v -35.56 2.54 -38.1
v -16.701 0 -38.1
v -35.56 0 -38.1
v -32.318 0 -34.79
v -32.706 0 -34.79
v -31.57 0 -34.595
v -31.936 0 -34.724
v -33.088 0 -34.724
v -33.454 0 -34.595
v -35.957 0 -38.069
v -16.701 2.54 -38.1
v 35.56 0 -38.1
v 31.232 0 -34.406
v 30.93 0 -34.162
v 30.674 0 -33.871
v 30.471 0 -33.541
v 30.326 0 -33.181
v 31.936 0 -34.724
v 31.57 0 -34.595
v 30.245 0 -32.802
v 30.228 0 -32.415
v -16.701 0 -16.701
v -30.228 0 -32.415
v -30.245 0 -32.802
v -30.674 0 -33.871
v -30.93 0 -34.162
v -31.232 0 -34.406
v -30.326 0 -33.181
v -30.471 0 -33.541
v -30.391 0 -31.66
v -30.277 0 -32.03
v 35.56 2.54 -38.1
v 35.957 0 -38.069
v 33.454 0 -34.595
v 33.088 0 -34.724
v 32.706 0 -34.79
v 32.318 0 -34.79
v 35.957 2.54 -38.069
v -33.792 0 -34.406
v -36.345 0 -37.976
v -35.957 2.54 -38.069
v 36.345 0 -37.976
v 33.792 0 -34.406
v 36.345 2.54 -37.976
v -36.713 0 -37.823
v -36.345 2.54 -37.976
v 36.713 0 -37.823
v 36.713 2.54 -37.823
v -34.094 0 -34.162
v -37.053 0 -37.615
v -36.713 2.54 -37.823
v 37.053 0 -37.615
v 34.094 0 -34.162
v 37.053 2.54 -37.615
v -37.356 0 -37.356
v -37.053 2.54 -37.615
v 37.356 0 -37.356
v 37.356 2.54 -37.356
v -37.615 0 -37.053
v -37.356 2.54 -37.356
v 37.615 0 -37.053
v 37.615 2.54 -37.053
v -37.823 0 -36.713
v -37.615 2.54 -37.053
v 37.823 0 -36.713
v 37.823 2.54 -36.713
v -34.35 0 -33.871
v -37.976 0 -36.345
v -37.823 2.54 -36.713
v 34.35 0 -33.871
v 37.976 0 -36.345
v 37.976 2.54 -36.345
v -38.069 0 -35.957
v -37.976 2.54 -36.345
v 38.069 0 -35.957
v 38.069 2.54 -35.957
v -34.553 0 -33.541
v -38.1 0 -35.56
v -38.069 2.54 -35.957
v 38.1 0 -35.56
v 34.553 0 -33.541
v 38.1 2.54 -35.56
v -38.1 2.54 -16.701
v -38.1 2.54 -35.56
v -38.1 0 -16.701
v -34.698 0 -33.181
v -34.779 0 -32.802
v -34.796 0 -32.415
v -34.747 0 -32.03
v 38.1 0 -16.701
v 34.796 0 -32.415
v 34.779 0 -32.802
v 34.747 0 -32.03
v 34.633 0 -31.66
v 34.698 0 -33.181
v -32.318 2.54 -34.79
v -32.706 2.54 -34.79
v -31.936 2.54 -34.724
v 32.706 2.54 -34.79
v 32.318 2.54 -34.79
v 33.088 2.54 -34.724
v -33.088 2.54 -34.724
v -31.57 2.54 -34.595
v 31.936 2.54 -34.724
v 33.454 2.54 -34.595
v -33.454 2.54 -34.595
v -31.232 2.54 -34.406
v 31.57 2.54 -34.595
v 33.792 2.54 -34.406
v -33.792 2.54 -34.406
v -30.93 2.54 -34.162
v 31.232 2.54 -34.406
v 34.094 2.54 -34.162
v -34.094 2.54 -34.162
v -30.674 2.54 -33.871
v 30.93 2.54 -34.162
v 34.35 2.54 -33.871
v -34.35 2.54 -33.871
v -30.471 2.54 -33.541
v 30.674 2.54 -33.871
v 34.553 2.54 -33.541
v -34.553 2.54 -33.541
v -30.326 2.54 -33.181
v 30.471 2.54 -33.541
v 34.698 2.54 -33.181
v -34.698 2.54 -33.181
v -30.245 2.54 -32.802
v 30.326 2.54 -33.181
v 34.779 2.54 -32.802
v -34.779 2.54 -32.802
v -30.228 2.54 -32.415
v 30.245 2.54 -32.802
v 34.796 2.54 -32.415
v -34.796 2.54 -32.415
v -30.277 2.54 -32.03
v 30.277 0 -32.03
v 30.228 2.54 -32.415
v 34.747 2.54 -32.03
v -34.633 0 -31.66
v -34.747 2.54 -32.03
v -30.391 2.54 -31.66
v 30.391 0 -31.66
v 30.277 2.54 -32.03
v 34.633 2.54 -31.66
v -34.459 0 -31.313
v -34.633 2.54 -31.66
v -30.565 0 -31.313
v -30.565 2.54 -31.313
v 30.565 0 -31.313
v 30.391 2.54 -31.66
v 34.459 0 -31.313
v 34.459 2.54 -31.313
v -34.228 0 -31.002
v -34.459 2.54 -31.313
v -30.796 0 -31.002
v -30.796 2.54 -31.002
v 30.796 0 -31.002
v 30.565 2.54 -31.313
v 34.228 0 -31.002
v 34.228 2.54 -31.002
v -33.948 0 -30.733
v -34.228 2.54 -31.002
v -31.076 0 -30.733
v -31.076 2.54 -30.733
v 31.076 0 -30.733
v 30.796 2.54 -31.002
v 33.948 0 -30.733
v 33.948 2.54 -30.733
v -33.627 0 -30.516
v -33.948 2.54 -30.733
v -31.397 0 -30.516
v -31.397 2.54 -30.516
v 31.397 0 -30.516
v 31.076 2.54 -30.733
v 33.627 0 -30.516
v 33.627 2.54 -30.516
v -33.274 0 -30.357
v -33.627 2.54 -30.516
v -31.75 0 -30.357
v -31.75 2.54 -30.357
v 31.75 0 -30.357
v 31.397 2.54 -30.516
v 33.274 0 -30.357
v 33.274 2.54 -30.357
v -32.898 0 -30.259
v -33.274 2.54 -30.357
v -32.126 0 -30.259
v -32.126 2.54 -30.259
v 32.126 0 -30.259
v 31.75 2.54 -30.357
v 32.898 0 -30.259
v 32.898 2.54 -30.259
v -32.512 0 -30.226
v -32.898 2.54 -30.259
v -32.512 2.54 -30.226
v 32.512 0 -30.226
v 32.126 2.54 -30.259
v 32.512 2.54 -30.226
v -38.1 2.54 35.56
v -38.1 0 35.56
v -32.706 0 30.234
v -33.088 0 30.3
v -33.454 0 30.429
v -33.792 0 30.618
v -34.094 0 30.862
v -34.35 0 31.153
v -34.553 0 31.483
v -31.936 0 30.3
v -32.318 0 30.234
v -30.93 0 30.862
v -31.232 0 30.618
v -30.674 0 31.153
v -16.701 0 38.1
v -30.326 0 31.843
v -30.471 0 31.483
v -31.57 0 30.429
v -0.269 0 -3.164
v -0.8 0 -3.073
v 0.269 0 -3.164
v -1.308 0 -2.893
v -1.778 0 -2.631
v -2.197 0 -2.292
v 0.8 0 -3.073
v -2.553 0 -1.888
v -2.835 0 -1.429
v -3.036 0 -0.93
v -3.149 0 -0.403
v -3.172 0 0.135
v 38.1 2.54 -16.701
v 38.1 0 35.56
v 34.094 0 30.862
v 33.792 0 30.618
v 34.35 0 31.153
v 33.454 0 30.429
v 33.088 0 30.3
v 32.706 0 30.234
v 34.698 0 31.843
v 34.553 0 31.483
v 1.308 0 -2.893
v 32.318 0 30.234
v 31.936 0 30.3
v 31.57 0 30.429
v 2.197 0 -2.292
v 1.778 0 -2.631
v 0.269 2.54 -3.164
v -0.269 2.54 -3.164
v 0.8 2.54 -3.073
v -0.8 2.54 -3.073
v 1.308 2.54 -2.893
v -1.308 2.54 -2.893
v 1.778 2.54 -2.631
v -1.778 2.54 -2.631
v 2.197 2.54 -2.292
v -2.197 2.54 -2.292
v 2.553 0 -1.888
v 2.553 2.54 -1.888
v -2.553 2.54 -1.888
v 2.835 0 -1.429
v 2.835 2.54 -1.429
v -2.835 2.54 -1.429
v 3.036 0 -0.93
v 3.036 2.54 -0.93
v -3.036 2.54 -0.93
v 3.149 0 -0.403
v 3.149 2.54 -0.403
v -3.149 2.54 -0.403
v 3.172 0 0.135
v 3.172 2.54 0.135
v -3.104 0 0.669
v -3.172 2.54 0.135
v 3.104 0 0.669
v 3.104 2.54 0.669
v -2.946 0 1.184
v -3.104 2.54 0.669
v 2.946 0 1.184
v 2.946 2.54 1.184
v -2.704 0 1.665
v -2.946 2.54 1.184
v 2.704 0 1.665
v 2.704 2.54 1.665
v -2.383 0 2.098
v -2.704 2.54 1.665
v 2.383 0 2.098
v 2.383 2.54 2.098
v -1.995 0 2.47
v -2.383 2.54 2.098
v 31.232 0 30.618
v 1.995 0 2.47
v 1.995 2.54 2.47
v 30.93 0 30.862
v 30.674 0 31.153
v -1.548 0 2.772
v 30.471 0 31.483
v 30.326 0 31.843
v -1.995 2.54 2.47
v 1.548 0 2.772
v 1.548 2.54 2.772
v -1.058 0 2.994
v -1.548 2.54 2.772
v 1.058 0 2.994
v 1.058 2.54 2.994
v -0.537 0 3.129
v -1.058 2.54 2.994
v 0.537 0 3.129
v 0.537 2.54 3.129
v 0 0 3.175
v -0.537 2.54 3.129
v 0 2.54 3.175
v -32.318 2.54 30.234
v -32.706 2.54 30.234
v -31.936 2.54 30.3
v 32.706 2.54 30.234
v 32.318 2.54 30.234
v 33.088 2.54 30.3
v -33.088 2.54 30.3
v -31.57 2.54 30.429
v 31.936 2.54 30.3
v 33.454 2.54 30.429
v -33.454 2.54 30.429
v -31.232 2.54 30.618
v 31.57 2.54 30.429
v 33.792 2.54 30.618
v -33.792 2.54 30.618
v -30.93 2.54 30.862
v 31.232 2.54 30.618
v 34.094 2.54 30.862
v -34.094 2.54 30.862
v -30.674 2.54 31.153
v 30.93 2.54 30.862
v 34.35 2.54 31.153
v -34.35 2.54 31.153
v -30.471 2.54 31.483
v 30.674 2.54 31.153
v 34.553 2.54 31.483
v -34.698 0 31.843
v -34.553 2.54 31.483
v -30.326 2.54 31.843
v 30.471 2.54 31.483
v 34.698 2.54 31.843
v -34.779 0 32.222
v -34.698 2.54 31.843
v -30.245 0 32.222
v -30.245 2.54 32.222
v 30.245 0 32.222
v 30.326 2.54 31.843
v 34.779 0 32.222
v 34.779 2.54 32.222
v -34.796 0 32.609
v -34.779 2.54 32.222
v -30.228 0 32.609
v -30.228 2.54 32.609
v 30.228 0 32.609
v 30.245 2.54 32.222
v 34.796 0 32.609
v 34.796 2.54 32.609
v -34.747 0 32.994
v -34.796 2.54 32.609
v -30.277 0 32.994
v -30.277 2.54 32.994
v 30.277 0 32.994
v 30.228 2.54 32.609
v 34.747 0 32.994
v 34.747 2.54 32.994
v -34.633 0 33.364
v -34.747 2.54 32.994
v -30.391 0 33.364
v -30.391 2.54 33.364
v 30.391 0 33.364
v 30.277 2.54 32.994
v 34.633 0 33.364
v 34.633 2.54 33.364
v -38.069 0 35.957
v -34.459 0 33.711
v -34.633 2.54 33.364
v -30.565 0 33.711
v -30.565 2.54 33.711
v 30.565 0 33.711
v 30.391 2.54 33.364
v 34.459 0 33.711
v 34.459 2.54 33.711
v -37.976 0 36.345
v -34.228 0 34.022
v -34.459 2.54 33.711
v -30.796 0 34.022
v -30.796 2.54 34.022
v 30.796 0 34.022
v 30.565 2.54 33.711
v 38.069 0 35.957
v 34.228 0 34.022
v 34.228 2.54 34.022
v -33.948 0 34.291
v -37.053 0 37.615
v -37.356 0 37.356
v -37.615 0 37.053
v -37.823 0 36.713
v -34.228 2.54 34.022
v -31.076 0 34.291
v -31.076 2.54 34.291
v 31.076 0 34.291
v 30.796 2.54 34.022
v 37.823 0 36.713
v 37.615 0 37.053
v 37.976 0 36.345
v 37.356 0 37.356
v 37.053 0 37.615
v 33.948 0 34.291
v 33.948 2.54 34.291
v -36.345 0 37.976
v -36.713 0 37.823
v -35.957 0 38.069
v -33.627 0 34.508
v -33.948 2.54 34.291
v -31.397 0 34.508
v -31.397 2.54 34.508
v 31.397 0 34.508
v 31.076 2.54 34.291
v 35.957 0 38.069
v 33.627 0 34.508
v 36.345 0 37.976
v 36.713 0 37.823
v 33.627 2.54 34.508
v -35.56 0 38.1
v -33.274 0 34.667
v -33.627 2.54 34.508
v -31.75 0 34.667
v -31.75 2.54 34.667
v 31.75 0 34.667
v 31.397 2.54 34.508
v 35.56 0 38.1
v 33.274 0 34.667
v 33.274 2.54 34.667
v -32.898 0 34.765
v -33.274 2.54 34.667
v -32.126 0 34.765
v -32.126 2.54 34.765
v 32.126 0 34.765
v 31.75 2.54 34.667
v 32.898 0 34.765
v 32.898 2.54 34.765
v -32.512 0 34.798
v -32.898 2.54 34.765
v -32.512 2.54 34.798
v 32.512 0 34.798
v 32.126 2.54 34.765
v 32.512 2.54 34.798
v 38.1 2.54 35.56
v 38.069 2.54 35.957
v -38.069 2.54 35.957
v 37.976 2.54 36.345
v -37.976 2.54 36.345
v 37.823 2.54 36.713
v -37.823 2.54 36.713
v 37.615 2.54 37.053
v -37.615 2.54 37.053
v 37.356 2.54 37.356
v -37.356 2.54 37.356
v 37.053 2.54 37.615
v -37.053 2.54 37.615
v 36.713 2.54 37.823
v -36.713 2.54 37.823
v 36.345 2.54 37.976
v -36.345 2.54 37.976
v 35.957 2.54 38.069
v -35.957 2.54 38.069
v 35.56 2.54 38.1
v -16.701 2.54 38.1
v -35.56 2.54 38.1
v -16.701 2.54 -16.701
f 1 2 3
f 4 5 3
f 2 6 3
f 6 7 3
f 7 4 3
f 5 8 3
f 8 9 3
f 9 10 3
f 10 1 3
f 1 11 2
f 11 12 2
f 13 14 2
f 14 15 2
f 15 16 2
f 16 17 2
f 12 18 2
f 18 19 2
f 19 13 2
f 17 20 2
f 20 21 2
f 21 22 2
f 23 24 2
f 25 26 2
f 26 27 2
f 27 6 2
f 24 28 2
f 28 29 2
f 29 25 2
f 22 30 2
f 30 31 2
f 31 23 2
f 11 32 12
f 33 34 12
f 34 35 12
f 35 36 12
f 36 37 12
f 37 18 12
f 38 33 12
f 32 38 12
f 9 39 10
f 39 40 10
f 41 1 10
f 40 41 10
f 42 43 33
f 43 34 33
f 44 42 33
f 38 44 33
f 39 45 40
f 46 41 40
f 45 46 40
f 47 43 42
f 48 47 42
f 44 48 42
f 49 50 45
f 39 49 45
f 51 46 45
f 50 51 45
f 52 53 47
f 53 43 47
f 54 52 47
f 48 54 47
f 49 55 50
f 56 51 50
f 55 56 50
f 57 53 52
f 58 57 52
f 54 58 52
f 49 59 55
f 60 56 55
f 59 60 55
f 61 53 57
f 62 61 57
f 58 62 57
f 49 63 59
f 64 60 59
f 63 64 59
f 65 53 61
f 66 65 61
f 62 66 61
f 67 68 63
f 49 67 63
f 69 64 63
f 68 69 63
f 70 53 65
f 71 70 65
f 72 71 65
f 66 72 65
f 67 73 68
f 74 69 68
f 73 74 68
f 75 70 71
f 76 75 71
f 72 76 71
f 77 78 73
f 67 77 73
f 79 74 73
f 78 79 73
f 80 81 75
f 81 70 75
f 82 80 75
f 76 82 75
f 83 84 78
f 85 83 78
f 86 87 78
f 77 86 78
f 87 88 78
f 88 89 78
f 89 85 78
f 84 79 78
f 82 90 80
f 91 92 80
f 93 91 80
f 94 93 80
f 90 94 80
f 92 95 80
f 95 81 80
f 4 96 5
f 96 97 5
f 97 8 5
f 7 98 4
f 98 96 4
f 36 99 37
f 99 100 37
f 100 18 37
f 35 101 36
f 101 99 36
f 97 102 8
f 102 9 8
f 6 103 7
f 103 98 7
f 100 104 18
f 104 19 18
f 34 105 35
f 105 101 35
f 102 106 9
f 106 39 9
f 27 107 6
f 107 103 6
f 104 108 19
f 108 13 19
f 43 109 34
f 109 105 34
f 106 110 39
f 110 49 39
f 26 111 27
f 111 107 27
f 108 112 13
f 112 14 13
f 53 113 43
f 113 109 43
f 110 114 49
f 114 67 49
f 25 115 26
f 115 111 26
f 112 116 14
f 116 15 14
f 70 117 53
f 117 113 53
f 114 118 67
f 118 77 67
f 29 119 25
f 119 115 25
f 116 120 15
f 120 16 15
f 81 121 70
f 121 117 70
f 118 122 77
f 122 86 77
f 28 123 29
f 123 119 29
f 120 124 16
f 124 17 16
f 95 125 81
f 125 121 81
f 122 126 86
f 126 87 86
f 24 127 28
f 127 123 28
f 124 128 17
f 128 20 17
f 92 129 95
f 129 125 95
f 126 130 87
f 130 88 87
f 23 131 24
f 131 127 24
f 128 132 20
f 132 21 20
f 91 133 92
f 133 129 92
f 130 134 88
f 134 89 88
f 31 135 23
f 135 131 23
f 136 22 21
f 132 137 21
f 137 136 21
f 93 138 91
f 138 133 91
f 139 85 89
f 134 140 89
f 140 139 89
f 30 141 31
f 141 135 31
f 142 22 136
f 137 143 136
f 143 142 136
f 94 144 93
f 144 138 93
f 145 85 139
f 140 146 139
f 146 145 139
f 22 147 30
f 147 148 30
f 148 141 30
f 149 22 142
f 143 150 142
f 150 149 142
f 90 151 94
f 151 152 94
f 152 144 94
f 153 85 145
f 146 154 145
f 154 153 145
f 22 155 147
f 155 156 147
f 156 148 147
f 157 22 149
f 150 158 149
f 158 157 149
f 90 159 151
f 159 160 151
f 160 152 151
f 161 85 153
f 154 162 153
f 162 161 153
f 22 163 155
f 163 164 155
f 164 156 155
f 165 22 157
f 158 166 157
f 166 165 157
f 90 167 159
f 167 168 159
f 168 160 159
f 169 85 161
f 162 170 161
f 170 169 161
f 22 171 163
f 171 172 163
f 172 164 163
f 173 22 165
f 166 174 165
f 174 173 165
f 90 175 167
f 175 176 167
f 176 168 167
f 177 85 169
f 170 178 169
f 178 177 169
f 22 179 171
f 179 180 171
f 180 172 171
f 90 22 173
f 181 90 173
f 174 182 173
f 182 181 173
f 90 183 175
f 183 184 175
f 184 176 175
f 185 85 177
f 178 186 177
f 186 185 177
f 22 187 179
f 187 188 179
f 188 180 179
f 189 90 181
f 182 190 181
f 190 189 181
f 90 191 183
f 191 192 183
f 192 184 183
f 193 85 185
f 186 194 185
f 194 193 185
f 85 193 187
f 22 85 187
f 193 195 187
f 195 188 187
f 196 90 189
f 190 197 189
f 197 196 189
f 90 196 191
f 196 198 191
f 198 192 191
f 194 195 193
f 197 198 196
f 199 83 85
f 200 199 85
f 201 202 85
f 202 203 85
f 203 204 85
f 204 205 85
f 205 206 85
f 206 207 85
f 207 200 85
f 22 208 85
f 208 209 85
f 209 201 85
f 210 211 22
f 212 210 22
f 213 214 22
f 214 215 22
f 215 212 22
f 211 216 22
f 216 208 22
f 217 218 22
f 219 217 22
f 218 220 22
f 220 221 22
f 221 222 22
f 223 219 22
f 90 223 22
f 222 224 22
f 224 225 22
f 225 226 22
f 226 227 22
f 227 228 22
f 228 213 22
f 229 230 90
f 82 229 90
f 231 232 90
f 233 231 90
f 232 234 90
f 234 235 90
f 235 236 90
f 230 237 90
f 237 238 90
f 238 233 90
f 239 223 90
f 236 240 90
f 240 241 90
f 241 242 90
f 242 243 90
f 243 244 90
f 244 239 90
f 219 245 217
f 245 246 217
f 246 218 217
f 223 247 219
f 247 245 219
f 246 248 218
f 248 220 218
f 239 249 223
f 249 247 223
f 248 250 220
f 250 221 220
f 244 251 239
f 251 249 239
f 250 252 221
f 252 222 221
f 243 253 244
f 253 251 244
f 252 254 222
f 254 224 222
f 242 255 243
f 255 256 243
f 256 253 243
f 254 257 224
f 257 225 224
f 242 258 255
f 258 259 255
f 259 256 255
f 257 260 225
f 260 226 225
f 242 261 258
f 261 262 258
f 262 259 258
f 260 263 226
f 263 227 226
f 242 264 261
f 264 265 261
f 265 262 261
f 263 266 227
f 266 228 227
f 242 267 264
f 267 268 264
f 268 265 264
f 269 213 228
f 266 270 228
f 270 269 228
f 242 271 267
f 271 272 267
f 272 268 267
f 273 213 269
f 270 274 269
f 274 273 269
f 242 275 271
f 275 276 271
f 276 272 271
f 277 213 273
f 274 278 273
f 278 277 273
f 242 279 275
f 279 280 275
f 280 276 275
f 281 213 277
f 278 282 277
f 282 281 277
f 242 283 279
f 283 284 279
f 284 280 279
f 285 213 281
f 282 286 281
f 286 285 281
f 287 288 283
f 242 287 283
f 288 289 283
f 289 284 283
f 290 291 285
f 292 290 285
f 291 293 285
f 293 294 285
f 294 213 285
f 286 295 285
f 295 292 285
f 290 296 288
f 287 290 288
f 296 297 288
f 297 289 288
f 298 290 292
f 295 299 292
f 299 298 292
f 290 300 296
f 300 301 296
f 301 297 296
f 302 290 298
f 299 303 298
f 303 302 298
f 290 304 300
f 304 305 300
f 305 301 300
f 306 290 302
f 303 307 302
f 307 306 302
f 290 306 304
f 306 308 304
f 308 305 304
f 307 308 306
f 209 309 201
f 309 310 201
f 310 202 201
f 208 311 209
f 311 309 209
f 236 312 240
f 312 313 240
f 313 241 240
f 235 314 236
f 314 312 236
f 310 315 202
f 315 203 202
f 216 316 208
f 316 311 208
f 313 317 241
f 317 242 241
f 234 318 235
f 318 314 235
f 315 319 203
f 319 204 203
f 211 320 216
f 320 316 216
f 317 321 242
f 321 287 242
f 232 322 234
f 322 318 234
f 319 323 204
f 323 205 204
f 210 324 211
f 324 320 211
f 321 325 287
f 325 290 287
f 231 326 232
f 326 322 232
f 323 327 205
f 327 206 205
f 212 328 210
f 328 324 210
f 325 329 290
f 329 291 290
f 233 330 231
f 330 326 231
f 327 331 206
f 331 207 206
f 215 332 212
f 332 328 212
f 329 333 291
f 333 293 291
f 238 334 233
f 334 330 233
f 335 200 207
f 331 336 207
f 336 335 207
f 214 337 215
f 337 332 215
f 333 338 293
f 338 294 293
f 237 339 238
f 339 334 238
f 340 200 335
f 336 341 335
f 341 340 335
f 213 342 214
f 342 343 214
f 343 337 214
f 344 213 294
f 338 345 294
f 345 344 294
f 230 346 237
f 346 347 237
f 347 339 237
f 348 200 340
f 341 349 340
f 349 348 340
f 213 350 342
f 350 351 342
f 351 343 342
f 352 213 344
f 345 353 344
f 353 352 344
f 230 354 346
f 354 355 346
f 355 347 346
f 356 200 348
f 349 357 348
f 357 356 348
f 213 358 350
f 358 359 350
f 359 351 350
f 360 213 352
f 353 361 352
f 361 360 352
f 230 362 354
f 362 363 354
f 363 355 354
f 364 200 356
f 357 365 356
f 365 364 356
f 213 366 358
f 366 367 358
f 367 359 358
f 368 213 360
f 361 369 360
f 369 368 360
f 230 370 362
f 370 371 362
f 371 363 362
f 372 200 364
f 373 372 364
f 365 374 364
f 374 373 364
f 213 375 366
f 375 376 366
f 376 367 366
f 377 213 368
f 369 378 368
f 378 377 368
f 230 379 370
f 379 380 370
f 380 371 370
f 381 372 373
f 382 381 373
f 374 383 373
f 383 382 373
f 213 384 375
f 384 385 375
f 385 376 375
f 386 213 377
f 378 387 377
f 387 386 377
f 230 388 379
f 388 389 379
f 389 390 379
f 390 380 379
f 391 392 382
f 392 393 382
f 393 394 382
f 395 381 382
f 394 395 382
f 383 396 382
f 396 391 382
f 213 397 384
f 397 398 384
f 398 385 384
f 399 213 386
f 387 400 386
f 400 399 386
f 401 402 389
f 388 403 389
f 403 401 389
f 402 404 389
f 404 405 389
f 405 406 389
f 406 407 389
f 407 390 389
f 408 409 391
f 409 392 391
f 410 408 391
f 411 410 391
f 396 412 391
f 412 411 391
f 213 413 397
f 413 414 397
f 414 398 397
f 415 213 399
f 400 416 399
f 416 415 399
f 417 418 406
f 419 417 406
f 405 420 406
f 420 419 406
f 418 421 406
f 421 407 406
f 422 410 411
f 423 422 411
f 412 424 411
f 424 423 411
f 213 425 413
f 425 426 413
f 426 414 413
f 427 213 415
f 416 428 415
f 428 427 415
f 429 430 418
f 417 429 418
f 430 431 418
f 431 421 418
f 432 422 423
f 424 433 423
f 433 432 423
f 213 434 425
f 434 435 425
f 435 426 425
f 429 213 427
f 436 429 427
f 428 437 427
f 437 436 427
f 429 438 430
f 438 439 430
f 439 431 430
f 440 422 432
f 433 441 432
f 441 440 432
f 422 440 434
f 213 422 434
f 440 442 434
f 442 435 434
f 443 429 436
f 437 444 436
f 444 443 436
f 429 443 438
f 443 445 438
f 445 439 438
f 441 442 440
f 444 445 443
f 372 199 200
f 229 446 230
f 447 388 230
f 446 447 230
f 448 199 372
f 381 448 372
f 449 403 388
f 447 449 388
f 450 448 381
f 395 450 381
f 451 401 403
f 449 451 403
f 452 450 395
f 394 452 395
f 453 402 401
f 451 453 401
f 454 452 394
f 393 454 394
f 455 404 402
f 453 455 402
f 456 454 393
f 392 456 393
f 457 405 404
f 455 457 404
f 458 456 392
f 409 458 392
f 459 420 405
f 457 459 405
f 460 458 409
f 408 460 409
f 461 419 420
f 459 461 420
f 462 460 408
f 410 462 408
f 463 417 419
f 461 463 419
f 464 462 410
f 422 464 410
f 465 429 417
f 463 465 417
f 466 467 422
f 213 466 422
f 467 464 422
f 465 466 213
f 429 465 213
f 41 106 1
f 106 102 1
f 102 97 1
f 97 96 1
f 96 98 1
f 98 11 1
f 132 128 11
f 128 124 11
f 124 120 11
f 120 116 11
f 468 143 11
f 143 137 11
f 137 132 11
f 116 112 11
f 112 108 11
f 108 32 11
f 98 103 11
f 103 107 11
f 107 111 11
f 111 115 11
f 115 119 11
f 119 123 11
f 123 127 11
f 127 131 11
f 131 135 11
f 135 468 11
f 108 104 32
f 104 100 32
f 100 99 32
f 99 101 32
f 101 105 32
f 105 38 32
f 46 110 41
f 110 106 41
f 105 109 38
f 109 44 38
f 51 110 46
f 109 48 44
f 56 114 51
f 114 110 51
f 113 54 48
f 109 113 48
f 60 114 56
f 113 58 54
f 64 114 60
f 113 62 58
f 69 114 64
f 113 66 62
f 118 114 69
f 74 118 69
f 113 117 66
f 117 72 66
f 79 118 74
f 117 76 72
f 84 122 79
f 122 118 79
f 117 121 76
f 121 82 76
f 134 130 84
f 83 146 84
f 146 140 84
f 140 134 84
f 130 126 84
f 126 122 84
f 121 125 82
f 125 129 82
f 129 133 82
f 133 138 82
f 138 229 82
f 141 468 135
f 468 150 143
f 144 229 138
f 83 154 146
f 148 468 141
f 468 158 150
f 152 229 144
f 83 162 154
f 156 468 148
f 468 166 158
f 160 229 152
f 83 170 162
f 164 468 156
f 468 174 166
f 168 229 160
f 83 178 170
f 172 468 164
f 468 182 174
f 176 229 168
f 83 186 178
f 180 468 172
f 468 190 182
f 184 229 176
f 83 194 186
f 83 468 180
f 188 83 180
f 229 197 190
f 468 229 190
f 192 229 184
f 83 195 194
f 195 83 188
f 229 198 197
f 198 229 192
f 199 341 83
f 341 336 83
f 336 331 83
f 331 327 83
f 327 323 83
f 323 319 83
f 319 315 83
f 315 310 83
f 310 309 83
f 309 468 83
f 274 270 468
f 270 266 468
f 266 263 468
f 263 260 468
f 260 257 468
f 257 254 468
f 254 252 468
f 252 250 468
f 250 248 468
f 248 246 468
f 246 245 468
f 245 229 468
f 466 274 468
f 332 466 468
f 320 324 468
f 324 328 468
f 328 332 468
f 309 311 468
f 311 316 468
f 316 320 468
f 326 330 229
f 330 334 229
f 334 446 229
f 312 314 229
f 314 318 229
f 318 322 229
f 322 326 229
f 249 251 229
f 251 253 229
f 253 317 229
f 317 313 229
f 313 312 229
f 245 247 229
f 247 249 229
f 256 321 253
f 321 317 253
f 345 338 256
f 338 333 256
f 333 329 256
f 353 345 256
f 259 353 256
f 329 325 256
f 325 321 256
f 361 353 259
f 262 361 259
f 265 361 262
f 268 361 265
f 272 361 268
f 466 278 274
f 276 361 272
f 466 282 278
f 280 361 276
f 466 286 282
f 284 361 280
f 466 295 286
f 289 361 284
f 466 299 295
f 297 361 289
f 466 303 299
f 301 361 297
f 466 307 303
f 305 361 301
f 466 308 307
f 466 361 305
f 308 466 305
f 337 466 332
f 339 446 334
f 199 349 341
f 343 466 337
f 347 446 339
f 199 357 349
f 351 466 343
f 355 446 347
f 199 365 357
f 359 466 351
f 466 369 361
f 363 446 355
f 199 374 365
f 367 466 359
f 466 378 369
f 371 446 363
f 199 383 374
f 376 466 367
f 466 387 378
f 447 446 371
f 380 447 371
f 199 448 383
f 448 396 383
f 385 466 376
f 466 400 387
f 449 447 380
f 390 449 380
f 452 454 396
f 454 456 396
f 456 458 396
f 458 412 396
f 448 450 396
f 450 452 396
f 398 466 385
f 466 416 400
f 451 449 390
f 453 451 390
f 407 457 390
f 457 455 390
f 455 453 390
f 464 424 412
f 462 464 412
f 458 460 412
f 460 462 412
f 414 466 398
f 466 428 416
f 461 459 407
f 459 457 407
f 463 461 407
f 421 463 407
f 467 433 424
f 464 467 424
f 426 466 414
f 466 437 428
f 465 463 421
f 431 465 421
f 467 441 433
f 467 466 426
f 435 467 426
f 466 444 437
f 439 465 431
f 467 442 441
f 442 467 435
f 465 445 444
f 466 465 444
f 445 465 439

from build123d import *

# Parameters (mm, degrees)
SKETCH2_W           = 76.2
SKETCH2_H           = 76.2
BOSS_EXTRUDE2_DEPTH = 2.54
SKETCH5_R           = 2.286
CUT_EXTRUDE1_DEPTH  = 2.54
SKETCH6_R           = 3.175
CUT_EXTRUDE2_DEPTH  = 2.54
FILLET3_R           = 2.54


with BuildPart() as part:
    # Sketch2 → Boss-Extrude2 (new body)
    with BuildSketch(Plane(origin=(0, 0, 0), x_dir=(1, 0, 0), z_dir=(0, 1, 0))):
        Rectangle(SKETCH2_W, SKETCH2_H)
    extrude(amount=BOSS_EXTRUDE2_DEPTH)

    # Sketch5 → Cut-Extrude1 (cut)
    with BuildSketch(Plane(origin=(0, 2.54, 0), x_dir=(1, 0, 0), z_dir=(0, 1, 0))):
        with Locations((-32.512, 32.512)):
            Circle(SKETCH5_R)
        with Locations((32.512, 32.512)):
            Circle(SKETCH5_R)
        with Locations((32.512, -32.512)):
            Circle(SKETCH5_R)
        with Locations((-32.512, -32.512)):
            Circle(SKETCH5_R)
    extrude(amount=-CUT_EXTRUDE1_DEPTH, mode=Mode.SUBTRACT)

    # Sketch6 → Cut-Extrude2 (cut)
    with BuildSketch(Plane(origin=(0, 2.54, 0), x_dir=(1, 0, 0), z_dir=(0, 1, 0))):
        Circle(SKETCH6_R)
    extrude(amount=-CUT_EXTRUDE2_DEPTH, mode=Mode.SUBTRACT)

    # Fillet3
    fillet3_edges = [part.edges().sort_by_distance(p)[0] for p in [
        (38.1, 1.27, 38.1),
        (-38.1, 1.27, 38.1),
        (-38.1, 1.27, -38.1),
        (38.1, 1.27, -38.1),
    ]]
    fillet(fillet3_edges, radius=FILLET3_R)


solid = part.part
